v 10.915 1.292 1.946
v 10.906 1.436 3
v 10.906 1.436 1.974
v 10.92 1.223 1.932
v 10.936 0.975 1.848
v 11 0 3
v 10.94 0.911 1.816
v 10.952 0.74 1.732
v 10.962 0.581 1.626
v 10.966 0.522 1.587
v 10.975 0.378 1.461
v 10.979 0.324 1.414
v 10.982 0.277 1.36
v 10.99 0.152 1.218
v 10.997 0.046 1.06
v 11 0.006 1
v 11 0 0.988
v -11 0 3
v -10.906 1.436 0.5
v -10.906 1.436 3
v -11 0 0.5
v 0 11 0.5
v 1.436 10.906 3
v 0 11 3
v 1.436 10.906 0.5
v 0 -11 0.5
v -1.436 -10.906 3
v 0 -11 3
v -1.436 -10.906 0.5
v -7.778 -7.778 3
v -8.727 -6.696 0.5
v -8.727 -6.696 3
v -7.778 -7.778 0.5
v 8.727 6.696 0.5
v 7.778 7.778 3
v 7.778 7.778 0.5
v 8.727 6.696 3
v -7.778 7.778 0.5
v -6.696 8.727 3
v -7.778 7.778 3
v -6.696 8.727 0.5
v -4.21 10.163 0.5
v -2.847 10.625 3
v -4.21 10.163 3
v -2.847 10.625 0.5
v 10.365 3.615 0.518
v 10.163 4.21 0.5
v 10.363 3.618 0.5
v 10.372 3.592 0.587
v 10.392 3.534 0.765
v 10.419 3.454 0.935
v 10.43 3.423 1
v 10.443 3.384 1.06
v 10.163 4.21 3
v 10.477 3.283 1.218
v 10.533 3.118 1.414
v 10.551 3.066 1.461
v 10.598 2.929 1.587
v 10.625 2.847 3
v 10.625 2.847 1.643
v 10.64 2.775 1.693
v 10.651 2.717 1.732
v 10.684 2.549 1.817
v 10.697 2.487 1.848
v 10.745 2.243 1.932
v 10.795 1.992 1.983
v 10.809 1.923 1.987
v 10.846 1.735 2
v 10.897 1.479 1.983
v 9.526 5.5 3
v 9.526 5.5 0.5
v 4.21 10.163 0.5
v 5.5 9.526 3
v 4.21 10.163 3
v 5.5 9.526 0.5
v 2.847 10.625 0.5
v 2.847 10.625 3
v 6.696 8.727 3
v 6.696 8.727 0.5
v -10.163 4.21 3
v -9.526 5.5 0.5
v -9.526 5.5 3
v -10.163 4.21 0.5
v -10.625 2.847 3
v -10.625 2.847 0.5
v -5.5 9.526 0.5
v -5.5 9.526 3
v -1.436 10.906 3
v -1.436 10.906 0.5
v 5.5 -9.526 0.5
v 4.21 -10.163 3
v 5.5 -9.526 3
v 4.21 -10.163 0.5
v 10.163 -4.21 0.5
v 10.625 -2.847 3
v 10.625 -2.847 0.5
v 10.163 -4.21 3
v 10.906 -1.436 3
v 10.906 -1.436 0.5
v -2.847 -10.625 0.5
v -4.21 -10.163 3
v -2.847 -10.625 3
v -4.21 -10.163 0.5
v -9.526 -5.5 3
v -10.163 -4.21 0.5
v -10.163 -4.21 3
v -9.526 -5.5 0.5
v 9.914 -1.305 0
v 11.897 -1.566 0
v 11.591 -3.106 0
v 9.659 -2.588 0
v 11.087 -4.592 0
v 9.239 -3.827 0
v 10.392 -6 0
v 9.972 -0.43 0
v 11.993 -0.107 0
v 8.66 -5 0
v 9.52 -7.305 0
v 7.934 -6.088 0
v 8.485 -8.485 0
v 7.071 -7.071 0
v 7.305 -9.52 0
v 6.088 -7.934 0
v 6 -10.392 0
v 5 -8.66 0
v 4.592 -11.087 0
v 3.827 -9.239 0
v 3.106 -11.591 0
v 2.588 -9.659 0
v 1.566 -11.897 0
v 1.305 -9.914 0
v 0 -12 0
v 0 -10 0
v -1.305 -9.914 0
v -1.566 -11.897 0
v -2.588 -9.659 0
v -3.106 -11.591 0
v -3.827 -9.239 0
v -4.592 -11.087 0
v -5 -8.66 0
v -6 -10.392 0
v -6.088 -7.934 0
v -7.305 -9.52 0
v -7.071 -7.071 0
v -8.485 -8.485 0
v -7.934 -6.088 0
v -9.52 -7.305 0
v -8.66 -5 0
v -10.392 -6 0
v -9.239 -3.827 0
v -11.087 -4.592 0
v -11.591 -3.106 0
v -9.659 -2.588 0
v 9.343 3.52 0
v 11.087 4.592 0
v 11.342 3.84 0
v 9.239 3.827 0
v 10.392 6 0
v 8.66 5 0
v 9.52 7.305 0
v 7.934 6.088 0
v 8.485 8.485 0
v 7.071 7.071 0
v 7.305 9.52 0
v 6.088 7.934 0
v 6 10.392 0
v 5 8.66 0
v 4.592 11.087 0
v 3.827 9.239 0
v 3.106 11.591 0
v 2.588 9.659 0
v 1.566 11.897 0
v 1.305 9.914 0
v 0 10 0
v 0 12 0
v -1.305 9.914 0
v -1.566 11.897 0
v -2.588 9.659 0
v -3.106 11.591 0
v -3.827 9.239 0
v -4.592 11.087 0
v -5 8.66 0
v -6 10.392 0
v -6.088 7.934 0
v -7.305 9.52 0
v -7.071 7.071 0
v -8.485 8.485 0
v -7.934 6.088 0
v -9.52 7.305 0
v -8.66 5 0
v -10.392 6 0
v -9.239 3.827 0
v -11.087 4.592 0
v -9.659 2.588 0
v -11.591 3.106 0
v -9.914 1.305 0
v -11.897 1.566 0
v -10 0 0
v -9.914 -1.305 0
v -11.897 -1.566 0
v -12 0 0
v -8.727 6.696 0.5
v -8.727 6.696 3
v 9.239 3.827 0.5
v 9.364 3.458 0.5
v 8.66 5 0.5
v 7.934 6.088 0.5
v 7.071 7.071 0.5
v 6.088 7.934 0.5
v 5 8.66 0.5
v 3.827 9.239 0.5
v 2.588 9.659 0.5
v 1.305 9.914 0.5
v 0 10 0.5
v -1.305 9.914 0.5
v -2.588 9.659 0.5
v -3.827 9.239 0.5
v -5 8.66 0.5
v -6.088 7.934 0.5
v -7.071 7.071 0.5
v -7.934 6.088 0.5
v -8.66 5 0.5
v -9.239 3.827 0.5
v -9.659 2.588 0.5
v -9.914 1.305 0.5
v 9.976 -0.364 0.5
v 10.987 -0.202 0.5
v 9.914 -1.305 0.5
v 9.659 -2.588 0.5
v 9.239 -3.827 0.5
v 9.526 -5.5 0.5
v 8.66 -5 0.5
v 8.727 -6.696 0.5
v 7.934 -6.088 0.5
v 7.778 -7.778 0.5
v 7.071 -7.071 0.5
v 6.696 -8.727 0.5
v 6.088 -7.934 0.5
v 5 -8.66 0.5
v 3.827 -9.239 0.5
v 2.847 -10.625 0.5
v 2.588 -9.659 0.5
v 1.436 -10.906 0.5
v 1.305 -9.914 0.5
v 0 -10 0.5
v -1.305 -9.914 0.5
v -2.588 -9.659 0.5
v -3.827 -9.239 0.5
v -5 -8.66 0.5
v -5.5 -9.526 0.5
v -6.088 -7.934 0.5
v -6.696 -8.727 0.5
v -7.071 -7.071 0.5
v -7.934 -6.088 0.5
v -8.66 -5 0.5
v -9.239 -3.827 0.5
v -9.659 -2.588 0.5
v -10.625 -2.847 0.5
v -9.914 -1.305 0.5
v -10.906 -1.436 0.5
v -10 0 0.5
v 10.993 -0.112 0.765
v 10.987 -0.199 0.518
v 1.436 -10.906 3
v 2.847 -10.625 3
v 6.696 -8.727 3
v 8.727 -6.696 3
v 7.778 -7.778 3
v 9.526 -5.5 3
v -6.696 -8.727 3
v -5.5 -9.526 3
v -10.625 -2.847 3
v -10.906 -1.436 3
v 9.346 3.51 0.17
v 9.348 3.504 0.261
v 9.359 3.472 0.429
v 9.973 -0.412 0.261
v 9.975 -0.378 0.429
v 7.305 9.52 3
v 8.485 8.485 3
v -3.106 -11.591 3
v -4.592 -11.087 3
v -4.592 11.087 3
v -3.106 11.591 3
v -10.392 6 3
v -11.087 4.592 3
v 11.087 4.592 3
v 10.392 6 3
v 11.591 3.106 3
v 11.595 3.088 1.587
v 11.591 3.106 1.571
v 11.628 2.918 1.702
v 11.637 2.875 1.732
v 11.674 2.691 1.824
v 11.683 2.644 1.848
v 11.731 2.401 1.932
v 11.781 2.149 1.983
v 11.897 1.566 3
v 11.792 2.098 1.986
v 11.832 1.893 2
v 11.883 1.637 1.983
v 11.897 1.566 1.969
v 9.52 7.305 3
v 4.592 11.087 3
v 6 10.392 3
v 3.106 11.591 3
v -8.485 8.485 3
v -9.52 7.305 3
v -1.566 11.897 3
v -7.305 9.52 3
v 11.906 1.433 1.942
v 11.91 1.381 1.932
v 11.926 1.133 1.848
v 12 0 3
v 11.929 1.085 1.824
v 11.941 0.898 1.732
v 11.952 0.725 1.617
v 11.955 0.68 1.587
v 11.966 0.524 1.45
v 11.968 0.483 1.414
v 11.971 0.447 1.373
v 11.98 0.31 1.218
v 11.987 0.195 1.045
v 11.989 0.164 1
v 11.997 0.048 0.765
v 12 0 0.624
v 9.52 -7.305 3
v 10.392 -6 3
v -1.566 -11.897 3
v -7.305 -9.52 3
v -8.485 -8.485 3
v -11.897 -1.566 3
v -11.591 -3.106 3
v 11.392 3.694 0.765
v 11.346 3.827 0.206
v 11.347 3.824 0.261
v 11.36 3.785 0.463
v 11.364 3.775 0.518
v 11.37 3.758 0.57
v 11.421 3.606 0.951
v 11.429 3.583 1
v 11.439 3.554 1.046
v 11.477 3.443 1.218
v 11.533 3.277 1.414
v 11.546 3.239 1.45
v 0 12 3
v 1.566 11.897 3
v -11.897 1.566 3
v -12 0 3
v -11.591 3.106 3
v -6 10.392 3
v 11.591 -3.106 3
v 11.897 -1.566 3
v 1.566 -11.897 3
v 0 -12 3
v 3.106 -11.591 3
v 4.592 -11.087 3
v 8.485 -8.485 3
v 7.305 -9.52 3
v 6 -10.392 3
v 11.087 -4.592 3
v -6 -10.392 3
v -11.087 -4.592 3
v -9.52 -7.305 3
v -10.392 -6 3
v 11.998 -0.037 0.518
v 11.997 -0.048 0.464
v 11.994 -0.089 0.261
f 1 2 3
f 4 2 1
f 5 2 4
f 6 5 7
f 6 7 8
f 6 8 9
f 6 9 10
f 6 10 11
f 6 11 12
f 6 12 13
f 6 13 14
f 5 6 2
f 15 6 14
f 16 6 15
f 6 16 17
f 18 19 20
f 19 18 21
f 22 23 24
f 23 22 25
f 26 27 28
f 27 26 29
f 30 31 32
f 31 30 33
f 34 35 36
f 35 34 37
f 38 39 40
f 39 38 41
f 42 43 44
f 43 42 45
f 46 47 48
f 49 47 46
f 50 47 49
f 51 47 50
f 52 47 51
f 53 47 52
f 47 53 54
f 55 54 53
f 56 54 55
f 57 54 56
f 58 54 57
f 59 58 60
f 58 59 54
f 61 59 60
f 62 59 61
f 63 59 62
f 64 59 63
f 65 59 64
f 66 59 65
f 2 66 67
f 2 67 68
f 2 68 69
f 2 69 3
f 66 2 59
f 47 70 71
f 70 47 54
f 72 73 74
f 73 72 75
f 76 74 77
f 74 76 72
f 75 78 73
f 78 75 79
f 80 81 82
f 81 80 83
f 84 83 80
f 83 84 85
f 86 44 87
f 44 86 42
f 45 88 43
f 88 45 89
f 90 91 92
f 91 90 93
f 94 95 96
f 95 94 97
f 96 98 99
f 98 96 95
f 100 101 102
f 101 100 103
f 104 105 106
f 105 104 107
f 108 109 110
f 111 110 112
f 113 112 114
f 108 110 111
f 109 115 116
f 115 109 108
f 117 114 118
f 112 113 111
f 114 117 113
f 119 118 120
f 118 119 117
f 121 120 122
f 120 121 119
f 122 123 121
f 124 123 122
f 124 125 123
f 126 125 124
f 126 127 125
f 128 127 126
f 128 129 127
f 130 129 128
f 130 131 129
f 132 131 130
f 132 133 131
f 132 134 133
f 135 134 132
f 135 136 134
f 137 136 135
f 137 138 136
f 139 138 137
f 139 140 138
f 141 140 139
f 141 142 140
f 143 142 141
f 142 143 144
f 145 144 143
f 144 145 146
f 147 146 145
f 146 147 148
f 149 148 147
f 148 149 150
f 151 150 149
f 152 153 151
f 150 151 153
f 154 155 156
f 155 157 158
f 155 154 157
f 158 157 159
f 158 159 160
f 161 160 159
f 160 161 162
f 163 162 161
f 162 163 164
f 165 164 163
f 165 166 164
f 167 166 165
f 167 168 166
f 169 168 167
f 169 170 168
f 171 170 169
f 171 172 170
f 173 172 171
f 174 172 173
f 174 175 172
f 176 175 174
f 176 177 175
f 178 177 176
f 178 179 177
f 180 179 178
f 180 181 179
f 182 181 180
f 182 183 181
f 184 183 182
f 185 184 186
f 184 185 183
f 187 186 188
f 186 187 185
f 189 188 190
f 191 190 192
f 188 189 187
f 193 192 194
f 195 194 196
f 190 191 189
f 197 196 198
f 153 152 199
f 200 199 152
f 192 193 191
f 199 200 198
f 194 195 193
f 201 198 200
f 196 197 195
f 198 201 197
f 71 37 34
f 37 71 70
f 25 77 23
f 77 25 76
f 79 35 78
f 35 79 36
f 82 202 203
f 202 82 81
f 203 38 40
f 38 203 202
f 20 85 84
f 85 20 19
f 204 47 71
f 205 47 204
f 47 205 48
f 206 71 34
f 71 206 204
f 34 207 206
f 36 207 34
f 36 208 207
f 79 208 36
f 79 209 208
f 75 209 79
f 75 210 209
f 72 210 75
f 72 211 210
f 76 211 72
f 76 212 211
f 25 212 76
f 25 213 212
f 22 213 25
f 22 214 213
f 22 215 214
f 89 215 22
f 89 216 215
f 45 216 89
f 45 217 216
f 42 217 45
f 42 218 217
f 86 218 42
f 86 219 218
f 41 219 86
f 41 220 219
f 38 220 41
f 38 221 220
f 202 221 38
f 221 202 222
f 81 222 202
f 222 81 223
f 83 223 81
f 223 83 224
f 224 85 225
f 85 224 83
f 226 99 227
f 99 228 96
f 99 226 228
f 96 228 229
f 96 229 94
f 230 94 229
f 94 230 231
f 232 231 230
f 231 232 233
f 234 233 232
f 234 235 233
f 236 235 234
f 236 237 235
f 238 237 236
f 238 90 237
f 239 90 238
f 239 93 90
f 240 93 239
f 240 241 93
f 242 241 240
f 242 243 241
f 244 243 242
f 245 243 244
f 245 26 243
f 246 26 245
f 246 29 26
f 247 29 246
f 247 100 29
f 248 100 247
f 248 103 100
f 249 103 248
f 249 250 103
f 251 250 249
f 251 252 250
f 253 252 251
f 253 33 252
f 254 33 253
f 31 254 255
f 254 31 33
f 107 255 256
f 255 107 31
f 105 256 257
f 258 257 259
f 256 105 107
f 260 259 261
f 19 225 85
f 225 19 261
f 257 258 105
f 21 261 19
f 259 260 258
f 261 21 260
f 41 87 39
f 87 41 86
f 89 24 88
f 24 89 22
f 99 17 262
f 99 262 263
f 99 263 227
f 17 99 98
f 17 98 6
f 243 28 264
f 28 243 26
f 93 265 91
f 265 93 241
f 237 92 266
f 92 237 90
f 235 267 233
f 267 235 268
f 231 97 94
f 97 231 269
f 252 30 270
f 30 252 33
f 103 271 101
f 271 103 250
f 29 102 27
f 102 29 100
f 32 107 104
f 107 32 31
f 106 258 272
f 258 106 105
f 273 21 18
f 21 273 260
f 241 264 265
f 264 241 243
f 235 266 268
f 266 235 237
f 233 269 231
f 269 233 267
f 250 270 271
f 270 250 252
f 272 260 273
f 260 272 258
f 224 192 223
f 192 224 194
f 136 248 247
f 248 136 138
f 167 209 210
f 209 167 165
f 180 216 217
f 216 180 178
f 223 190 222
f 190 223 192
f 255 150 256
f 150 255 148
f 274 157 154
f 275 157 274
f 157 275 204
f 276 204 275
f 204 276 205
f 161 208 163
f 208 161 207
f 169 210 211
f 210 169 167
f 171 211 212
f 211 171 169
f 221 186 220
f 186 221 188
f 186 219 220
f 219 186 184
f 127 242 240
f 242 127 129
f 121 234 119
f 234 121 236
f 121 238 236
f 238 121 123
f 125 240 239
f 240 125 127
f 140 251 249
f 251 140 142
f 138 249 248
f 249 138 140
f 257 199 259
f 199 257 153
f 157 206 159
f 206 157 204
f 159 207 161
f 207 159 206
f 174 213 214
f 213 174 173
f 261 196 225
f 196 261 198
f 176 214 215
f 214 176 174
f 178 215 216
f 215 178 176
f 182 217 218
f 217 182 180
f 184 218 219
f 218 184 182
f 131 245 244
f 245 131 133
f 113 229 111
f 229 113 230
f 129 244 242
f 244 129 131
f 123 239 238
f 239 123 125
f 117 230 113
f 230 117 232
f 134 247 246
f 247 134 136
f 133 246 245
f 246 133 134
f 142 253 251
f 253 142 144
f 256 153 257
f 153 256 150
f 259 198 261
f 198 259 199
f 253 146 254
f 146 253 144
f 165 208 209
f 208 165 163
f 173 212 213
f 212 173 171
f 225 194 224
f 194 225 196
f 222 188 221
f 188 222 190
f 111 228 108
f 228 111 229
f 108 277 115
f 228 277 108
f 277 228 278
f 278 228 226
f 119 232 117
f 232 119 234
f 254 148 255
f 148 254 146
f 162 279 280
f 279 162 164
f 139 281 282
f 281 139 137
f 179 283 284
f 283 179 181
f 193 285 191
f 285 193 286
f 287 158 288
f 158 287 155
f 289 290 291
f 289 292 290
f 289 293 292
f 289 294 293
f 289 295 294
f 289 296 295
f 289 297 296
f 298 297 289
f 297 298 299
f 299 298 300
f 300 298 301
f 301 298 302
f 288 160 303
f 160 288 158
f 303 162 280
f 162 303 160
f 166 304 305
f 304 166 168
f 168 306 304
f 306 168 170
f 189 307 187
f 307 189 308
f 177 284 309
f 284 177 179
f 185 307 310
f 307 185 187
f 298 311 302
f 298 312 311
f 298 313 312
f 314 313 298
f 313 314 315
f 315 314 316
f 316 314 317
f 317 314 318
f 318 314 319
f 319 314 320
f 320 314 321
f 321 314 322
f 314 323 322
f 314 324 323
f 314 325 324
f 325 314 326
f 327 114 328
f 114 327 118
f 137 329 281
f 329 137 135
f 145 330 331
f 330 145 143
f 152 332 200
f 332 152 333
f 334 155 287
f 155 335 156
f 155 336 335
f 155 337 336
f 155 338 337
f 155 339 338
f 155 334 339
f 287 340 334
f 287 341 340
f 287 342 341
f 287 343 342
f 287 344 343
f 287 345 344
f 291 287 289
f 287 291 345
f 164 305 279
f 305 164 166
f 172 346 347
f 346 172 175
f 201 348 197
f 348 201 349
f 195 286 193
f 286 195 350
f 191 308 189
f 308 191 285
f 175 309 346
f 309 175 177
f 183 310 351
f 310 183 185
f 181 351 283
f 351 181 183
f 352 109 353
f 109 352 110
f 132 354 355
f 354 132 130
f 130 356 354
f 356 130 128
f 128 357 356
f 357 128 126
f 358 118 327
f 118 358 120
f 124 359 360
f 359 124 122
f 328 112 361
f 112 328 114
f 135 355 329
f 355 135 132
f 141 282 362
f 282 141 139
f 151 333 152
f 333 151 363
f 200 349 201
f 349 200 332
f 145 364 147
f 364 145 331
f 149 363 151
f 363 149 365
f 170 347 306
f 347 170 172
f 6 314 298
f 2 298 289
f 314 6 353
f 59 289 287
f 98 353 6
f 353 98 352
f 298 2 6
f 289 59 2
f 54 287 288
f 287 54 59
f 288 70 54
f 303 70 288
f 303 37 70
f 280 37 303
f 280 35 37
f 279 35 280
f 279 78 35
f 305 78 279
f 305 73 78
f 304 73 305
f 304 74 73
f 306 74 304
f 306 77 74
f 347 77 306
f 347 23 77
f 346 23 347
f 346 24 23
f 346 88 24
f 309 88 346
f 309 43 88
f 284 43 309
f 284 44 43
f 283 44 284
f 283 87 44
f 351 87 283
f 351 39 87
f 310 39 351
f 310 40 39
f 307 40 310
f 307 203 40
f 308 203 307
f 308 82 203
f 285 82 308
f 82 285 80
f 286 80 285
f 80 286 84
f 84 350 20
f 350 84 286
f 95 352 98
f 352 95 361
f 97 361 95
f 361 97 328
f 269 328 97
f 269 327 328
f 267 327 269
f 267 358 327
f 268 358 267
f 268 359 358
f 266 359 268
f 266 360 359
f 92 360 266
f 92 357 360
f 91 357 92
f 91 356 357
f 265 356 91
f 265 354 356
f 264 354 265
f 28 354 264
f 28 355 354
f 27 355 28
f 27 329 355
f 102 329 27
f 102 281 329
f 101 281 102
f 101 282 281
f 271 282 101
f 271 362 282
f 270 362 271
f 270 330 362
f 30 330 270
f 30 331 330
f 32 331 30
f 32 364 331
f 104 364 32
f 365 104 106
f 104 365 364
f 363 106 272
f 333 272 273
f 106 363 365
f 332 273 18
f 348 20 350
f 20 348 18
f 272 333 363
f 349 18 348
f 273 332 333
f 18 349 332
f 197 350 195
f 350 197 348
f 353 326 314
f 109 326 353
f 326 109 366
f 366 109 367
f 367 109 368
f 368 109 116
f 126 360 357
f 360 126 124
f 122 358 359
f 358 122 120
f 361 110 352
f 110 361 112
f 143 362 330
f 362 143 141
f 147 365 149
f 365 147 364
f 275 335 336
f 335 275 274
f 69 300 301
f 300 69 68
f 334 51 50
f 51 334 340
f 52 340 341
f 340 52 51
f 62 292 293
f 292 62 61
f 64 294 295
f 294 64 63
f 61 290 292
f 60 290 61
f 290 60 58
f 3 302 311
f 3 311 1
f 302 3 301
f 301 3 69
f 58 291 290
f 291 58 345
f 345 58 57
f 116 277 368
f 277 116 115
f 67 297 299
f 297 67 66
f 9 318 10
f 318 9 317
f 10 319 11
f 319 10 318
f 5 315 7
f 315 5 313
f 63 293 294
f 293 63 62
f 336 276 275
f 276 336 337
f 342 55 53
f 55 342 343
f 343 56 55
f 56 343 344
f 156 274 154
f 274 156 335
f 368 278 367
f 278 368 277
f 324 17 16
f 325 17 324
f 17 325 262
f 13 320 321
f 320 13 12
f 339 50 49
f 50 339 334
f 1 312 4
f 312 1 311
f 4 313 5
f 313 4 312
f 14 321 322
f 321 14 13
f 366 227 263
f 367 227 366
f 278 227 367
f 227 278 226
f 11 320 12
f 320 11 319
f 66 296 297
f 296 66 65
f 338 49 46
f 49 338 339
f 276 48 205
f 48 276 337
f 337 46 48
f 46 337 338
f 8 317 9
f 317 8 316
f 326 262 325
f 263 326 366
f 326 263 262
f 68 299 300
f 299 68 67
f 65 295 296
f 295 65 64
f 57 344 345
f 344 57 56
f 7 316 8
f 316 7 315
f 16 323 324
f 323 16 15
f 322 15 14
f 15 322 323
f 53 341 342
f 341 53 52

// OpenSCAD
// file: ../build_environments.scad
// build_environments.scad: modules to build level sections
//

module pool(diameter=10.0, wall_height=2.0, step_width=3.0, connections=[])
{
    difference() {
        union() {
        difference() {
            cylinder(h=0.5,r1=diameter+step_width,r2=diameter+step_width,$fn=48);
            translate([0,0,-0.1])
                cylinder(h=0.7,r1=diameter,r2=diameter,$fn=48);
        }
        difference() {
            cylinder(h=wall_height,r1=diameter+step_width+1.0,r2=diameter+step_width+1.0,$fn=48);
            translate([0,0,-0.1])
                cylinder(h=wall_height+0.2,r1=diameter+step_width,r2=diameter+step_width,$fn=48);
        }
        }
    
        for (c = connections)
        {
            rotate([0,90,0]) {
                angle = atan2(c[1],c[0]);
                rotate([-angle,0,0]) {
                    cylinder(h=diameter+5.0,r1=c[2],r2=c[2],$fn=48);
                }
            }
        }
    }
}

module straight(length=10.0, width=2.0, dy1=0.0, dy2=0.0, dz=0.0)
{
    dims = [0, 0, 0, 0, 0, (dz/length)];
    matrix = [
        [ 1, dims[0], dims[1], 0 ],
        [ dims[2], 1, dims[4], 0 ],
        [ dims[5], dims[3], 1, 0 ],
        [ 0, 0, 0, 1 ]
    ];
    multmatrix(matrix)
    difference() {
        translate([dy1,0,0])
        union() {
            rotate([0,90,0]) {
                difference() {
                    cylinder(h=(length-dy1-dy2),r1=width+1.0,r2=width+1.0,$fn=24);
                    translate([0,0,-0.1])
                        cylinder(h=(length-dy1-dy2+0.2),r1=width,r2=width,$fn=24);
                }
                difference() {
                    cylinder(h=1.0,r1=width+2.0,r2=width+2.0,$fn=24);
                    translate([0,0,-0.1])
                        cylinder(h=1.2,r1=width,r2=width,$fn=24);
                }
                translate([0,0,(length-dy1-dy2)-1.0]) {
                    difference() {
                        cylinder(h=1.0,r1=width+2.0,r2=width+2.0,$fn=24);
                        translate([0,0,-0.1])
                            cylinder(h=1.2,r1=width,r2=width,$fn=24);
                    }
                }
            }
        }
        translate([0,0,-(2*width+4.0)/2])
            cube([3*length,3*length,2*width+4.0],center=true);
    }
}

module curve(p0=[0,0], center=[0,0], dir=1, angle=0.0, width=2.0)
{
    radius = sqrt((p0[0]-center[0])*(p0[0]-center[0]) + (p0[1]-center[1])*(p0[1]-center[1]));
    if (dir == 0) {
        difference() {
            rotate([0,0,-90])
            difference() {
                rotate_extrude(angle = angle, convexity = 10, $fn=32)
                    translate([radius, 0, 0])
                        circle(r = width+1.0,$fn=24);
                rotate([0,0,-1.0])
                    rotate_extrude(angle = angle+2.0, convexity = 10, $fn=32)
                        translate([radius, 0, 0])
                            circle(r = width,$fn=24);
            }
            translate([0,0,-(2*width+4.0)/2])
                cube([5*radius,5*radius,2*width+4.0],center=true);
        }
    }
    else {
        difference() {
            rotate([0,0,90])
            difference() {
                rotate_extrude(angle = -angle, convexity = 10, $fn=32)
                    translate([radius, 0, 0])
                        circle(r = width+1.0,$fn=24);
                rotate([0,0,1.0])
                    rotate_extrude(angle = -angle-2.0, convexity = 10, $fn=32)
                        translate([radius, 0, 0])
                            circle(r = width,$fn=24);
            }
            translate([0,0,-(2*width+4.0)/2])
                cube([5*radius,5*radius,2*width+4.0],center=true);
        }
    }

}

// test pool
//pool(diameter=12.0000, wall_height=3.0000, step_width=3.0000, connections=[[0.0000,-26.0000,2.0000], [23.6074,0.0000,2.0000]]);

// test straight, slope
//straight(length=26.0000, width=2.0000, dy1=11.8322, dy2=6.7082, dz=0.0000);
//straight(length=29.1549, width=12.0000, dy1=0.0000, dy2=0.0000, dz=-15.0000);

// test curve
//curve(p0=[23.6074, 0.0000], center=[23.6074, 5.0000], dir=0, angle=60.1011, width=2.0000);
//curve(p0=[33.6426, 12.4219], center=[37.9771, 9.9295], dir=1, angle=120.4627, width=2.0000);
// main file
use <../build_environments.scad>;
pool(diameter=10.0000, wall_height=3.0000, step_width=1.0000, connections=[[25.0000,4.0000,2.0000]]);
